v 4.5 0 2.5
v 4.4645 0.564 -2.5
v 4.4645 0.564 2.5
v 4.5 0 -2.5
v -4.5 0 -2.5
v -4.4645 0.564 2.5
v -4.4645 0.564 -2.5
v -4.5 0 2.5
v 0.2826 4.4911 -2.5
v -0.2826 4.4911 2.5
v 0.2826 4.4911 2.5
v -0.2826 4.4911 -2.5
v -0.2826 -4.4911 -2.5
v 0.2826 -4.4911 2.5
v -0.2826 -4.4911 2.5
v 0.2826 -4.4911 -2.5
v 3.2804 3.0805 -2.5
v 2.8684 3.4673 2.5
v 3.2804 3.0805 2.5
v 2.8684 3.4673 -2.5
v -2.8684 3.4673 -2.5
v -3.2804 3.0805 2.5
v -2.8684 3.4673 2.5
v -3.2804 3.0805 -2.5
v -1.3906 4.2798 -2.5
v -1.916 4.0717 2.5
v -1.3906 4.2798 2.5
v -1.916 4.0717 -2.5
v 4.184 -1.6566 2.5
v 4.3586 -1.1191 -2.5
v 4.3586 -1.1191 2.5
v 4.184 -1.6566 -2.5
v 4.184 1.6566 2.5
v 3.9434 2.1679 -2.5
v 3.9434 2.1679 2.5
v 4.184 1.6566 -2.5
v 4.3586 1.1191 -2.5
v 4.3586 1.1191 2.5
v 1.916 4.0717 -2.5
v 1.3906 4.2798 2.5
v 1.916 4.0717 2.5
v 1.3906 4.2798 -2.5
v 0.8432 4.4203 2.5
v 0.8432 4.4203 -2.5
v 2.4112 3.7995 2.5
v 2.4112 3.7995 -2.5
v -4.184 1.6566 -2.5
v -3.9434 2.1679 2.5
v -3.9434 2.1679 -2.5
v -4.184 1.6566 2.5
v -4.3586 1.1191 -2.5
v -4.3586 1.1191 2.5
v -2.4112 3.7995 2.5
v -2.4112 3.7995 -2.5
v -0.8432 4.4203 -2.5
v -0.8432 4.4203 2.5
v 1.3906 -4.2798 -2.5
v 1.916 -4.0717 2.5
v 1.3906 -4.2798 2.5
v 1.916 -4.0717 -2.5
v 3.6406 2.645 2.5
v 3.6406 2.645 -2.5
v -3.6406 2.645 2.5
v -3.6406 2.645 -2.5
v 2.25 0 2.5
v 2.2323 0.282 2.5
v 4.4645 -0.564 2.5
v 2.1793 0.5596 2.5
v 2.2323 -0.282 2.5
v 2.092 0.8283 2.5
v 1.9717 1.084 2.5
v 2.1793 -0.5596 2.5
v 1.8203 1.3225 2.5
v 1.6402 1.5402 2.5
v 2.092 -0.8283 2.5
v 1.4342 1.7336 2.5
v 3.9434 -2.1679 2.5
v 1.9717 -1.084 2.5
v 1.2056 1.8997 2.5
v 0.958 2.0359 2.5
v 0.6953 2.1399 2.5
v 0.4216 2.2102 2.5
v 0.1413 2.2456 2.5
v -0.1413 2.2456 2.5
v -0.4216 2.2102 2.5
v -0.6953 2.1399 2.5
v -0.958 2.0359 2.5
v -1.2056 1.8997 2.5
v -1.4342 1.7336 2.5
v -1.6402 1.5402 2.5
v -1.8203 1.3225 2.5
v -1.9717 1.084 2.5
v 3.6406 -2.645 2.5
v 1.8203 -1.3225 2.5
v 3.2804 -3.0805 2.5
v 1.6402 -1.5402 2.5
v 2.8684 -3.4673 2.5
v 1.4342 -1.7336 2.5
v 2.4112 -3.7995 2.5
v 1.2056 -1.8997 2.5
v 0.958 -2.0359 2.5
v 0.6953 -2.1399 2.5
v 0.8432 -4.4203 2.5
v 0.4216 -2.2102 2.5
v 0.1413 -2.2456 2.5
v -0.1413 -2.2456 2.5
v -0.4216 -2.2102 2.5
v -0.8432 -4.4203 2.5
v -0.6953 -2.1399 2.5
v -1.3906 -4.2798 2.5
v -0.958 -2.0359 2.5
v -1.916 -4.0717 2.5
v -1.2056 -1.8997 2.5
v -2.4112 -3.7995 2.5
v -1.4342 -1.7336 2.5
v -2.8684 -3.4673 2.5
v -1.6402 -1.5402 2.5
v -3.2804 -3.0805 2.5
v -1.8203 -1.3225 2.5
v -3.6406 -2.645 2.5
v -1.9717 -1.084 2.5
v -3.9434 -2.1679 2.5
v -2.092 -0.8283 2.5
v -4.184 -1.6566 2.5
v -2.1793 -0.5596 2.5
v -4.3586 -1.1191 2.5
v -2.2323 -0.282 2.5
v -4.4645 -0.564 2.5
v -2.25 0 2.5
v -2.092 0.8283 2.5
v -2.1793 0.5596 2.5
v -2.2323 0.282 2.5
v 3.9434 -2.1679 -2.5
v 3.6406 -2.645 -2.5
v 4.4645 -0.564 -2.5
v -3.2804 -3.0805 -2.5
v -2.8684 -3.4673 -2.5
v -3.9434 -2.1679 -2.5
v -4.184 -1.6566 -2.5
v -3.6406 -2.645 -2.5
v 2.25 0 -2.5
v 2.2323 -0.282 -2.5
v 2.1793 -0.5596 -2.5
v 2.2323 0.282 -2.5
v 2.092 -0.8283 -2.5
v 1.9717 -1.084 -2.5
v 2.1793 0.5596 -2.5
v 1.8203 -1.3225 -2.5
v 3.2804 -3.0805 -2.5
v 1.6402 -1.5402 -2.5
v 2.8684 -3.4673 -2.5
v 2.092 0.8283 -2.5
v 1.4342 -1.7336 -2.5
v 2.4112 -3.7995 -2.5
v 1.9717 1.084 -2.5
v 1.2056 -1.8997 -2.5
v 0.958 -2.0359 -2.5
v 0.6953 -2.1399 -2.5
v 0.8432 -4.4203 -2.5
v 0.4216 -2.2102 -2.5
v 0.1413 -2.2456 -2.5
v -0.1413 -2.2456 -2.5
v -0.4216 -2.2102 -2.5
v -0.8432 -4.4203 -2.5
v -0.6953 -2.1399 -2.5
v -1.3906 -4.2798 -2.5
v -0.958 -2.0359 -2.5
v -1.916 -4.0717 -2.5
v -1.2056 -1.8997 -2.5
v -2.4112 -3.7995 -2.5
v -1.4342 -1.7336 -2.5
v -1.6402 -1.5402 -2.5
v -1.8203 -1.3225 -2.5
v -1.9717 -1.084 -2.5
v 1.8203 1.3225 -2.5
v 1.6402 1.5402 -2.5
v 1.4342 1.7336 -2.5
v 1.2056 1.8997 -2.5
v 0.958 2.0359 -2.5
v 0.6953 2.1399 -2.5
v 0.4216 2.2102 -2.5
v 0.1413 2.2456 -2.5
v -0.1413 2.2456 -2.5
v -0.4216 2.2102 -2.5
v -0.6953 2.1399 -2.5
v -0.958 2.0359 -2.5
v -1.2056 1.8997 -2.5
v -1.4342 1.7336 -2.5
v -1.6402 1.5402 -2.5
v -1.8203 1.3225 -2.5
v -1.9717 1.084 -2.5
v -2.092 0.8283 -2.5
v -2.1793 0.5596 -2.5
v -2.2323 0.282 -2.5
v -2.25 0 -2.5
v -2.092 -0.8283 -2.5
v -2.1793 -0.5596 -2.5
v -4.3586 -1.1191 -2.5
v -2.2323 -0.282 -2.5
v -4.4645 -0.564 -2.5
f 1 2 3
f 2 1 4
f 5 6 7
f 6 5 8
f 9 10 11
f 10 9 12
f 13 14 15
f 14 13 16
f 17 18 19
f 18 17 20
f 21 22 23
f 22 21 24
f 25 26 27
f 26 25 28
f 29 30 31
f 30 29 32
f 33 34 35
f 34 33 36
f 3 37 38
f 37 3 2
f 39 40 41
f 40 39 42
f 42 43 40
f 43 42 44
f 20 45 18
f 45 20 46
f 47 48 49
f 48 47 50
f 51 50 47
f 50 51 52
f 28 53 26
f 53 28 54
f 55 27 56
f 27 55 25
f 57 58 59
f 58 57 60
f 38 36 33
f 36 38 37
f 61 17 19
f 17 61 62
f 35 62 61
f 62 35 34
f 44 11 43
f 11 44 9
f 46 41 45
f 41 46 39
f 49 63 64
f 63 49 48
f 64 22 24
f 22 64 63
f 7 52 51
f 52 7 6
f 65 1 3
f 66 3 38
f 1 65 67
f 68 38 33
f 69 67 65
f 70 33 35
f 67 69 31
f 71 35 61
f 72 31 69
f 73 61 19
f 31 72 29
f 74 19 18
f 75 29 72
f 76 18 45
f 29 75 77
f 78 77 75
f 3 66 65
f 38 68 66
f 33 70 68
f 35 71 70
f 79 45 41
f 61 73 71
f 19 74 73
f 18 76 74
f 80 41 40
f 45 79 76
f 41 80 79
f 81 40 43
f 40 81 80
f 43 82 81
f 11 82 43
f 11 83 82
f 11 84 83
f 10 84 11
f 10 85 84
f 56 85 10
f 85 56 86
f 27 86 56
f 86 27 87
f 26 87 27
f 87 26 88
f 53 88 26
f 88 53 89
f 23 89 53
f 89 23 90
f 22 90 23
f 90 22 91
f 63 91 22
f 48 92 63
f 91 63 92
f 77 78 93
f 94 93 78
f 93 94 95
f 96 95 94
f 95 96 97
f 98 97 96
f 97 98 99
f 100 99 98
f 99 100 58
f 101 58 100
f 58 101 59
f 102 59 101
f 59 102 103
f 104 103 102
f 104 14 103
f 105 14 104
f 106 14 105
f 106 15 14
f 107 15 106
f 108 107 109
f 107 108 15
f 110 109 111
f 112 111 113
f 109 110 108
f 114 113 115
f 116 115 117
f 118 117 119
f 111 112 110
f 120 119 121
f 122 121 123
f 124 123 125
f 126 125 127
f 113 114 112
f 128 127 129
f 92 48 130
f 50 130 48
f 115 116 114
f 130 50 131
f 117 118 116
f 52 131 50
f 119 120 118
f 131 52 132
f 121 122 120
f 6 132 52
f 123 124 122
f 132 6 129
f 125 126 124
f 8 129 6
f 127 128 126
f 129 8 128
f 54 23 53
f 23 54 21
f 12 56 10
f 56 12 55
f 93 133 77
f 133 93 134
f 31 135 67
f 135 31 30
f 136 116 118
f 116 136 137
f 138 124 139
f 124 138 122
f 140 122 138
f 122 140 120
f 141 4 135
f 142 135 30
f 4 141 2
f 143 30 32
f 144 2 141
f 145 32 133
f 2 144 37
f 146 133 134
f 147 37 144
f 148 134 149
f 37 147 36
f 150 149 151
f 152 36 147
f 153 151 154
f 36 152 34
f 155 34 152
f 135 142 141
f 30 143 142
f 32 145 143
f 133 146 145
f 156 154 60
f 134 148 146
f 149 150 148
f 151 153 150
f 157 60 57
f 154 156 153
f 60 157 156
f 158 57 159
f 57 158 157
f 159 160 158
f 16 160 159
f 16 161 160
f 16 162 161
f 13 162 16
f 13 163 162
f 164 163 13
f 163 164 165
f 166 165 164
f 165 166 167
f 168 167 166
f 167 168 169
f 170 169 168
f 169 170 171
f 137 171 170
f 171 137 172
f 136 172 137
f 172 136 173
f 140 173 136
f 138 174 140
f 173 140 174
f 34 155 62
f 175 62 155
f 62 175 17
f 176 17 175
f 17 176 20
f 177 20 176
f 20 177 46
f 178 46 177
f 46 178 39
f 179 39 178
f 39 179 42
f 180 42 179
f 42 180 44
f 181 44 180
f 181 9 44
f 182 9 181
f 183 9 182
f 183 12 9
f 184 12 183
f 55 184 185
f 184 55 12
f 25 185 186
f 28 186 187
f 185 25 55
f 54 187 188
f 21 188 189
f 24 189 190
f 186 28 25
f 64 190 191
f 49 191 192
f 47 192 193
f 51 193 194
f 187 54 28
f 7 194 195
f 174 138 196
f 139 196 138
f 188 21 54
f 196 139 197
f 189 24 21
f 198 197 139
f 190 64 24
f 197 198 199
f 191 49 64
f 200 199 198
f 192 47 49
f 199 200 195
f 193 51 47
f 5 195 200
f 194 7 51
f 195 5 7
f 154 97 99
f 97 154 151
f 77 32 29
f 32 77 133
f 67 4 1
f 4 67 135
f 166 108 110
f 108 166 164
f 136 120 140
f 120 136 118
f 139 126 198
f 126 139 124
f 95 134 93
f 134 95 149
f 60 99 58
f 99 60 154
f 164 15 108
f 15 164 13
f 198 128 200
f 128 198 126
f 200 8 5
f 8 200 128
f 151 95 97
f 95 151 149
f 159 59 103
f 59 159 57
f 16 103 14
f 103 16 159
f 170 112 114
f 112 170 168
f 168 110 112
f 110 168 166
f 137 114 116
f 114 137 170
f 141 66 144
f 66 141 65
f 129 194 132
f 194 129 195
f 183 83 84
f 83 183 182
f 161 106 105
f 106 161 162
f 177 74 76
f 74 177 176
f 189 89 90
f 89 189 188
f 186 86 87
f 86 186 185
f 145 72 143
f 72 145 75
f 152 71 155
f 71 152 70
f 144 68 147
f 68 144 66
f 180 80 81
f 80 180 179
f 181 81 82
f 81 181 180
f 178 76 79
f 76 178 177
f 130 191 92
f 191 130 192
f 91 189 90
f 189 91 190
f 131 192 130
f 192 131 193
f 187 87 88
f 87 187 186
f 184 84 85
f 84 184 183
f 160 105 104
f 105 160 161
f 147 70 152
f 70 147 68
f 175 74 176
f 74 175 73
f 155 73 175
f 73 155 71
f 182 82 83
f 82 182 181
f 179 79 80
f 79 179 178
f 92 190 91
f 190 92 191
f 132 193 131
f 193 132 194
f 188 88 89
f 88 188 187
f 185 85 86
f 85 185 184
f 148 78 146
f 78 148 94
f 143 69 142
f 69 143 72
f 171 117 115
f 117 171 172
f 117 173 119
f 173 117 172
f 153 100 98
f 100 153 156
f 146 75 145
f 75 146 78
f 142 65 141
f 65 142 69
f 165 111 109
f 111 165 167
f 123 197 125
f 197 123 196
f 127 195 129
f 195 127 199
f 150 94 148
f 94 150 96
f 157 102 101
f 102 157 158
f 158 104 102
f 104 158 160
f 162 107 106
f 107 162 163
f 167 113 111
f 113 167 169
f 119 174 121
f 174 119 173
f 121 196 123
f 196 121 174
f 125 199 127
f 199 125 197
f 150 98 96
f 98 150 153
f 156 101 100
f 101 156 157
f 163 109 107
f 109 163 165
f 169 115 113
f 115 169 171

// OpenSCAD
$fn = 50;


difference() {
	union() {
		translate(v = [0, 0, -2.5000000000]) {
			cylinder(h = 5, r = 4.5000000000);
		}
	}
	union() {
		translate(v = [0, 0, -100.0000000000]) {
			cylinder(h = 200, r = 2.2500000000);
		}
	}
}
